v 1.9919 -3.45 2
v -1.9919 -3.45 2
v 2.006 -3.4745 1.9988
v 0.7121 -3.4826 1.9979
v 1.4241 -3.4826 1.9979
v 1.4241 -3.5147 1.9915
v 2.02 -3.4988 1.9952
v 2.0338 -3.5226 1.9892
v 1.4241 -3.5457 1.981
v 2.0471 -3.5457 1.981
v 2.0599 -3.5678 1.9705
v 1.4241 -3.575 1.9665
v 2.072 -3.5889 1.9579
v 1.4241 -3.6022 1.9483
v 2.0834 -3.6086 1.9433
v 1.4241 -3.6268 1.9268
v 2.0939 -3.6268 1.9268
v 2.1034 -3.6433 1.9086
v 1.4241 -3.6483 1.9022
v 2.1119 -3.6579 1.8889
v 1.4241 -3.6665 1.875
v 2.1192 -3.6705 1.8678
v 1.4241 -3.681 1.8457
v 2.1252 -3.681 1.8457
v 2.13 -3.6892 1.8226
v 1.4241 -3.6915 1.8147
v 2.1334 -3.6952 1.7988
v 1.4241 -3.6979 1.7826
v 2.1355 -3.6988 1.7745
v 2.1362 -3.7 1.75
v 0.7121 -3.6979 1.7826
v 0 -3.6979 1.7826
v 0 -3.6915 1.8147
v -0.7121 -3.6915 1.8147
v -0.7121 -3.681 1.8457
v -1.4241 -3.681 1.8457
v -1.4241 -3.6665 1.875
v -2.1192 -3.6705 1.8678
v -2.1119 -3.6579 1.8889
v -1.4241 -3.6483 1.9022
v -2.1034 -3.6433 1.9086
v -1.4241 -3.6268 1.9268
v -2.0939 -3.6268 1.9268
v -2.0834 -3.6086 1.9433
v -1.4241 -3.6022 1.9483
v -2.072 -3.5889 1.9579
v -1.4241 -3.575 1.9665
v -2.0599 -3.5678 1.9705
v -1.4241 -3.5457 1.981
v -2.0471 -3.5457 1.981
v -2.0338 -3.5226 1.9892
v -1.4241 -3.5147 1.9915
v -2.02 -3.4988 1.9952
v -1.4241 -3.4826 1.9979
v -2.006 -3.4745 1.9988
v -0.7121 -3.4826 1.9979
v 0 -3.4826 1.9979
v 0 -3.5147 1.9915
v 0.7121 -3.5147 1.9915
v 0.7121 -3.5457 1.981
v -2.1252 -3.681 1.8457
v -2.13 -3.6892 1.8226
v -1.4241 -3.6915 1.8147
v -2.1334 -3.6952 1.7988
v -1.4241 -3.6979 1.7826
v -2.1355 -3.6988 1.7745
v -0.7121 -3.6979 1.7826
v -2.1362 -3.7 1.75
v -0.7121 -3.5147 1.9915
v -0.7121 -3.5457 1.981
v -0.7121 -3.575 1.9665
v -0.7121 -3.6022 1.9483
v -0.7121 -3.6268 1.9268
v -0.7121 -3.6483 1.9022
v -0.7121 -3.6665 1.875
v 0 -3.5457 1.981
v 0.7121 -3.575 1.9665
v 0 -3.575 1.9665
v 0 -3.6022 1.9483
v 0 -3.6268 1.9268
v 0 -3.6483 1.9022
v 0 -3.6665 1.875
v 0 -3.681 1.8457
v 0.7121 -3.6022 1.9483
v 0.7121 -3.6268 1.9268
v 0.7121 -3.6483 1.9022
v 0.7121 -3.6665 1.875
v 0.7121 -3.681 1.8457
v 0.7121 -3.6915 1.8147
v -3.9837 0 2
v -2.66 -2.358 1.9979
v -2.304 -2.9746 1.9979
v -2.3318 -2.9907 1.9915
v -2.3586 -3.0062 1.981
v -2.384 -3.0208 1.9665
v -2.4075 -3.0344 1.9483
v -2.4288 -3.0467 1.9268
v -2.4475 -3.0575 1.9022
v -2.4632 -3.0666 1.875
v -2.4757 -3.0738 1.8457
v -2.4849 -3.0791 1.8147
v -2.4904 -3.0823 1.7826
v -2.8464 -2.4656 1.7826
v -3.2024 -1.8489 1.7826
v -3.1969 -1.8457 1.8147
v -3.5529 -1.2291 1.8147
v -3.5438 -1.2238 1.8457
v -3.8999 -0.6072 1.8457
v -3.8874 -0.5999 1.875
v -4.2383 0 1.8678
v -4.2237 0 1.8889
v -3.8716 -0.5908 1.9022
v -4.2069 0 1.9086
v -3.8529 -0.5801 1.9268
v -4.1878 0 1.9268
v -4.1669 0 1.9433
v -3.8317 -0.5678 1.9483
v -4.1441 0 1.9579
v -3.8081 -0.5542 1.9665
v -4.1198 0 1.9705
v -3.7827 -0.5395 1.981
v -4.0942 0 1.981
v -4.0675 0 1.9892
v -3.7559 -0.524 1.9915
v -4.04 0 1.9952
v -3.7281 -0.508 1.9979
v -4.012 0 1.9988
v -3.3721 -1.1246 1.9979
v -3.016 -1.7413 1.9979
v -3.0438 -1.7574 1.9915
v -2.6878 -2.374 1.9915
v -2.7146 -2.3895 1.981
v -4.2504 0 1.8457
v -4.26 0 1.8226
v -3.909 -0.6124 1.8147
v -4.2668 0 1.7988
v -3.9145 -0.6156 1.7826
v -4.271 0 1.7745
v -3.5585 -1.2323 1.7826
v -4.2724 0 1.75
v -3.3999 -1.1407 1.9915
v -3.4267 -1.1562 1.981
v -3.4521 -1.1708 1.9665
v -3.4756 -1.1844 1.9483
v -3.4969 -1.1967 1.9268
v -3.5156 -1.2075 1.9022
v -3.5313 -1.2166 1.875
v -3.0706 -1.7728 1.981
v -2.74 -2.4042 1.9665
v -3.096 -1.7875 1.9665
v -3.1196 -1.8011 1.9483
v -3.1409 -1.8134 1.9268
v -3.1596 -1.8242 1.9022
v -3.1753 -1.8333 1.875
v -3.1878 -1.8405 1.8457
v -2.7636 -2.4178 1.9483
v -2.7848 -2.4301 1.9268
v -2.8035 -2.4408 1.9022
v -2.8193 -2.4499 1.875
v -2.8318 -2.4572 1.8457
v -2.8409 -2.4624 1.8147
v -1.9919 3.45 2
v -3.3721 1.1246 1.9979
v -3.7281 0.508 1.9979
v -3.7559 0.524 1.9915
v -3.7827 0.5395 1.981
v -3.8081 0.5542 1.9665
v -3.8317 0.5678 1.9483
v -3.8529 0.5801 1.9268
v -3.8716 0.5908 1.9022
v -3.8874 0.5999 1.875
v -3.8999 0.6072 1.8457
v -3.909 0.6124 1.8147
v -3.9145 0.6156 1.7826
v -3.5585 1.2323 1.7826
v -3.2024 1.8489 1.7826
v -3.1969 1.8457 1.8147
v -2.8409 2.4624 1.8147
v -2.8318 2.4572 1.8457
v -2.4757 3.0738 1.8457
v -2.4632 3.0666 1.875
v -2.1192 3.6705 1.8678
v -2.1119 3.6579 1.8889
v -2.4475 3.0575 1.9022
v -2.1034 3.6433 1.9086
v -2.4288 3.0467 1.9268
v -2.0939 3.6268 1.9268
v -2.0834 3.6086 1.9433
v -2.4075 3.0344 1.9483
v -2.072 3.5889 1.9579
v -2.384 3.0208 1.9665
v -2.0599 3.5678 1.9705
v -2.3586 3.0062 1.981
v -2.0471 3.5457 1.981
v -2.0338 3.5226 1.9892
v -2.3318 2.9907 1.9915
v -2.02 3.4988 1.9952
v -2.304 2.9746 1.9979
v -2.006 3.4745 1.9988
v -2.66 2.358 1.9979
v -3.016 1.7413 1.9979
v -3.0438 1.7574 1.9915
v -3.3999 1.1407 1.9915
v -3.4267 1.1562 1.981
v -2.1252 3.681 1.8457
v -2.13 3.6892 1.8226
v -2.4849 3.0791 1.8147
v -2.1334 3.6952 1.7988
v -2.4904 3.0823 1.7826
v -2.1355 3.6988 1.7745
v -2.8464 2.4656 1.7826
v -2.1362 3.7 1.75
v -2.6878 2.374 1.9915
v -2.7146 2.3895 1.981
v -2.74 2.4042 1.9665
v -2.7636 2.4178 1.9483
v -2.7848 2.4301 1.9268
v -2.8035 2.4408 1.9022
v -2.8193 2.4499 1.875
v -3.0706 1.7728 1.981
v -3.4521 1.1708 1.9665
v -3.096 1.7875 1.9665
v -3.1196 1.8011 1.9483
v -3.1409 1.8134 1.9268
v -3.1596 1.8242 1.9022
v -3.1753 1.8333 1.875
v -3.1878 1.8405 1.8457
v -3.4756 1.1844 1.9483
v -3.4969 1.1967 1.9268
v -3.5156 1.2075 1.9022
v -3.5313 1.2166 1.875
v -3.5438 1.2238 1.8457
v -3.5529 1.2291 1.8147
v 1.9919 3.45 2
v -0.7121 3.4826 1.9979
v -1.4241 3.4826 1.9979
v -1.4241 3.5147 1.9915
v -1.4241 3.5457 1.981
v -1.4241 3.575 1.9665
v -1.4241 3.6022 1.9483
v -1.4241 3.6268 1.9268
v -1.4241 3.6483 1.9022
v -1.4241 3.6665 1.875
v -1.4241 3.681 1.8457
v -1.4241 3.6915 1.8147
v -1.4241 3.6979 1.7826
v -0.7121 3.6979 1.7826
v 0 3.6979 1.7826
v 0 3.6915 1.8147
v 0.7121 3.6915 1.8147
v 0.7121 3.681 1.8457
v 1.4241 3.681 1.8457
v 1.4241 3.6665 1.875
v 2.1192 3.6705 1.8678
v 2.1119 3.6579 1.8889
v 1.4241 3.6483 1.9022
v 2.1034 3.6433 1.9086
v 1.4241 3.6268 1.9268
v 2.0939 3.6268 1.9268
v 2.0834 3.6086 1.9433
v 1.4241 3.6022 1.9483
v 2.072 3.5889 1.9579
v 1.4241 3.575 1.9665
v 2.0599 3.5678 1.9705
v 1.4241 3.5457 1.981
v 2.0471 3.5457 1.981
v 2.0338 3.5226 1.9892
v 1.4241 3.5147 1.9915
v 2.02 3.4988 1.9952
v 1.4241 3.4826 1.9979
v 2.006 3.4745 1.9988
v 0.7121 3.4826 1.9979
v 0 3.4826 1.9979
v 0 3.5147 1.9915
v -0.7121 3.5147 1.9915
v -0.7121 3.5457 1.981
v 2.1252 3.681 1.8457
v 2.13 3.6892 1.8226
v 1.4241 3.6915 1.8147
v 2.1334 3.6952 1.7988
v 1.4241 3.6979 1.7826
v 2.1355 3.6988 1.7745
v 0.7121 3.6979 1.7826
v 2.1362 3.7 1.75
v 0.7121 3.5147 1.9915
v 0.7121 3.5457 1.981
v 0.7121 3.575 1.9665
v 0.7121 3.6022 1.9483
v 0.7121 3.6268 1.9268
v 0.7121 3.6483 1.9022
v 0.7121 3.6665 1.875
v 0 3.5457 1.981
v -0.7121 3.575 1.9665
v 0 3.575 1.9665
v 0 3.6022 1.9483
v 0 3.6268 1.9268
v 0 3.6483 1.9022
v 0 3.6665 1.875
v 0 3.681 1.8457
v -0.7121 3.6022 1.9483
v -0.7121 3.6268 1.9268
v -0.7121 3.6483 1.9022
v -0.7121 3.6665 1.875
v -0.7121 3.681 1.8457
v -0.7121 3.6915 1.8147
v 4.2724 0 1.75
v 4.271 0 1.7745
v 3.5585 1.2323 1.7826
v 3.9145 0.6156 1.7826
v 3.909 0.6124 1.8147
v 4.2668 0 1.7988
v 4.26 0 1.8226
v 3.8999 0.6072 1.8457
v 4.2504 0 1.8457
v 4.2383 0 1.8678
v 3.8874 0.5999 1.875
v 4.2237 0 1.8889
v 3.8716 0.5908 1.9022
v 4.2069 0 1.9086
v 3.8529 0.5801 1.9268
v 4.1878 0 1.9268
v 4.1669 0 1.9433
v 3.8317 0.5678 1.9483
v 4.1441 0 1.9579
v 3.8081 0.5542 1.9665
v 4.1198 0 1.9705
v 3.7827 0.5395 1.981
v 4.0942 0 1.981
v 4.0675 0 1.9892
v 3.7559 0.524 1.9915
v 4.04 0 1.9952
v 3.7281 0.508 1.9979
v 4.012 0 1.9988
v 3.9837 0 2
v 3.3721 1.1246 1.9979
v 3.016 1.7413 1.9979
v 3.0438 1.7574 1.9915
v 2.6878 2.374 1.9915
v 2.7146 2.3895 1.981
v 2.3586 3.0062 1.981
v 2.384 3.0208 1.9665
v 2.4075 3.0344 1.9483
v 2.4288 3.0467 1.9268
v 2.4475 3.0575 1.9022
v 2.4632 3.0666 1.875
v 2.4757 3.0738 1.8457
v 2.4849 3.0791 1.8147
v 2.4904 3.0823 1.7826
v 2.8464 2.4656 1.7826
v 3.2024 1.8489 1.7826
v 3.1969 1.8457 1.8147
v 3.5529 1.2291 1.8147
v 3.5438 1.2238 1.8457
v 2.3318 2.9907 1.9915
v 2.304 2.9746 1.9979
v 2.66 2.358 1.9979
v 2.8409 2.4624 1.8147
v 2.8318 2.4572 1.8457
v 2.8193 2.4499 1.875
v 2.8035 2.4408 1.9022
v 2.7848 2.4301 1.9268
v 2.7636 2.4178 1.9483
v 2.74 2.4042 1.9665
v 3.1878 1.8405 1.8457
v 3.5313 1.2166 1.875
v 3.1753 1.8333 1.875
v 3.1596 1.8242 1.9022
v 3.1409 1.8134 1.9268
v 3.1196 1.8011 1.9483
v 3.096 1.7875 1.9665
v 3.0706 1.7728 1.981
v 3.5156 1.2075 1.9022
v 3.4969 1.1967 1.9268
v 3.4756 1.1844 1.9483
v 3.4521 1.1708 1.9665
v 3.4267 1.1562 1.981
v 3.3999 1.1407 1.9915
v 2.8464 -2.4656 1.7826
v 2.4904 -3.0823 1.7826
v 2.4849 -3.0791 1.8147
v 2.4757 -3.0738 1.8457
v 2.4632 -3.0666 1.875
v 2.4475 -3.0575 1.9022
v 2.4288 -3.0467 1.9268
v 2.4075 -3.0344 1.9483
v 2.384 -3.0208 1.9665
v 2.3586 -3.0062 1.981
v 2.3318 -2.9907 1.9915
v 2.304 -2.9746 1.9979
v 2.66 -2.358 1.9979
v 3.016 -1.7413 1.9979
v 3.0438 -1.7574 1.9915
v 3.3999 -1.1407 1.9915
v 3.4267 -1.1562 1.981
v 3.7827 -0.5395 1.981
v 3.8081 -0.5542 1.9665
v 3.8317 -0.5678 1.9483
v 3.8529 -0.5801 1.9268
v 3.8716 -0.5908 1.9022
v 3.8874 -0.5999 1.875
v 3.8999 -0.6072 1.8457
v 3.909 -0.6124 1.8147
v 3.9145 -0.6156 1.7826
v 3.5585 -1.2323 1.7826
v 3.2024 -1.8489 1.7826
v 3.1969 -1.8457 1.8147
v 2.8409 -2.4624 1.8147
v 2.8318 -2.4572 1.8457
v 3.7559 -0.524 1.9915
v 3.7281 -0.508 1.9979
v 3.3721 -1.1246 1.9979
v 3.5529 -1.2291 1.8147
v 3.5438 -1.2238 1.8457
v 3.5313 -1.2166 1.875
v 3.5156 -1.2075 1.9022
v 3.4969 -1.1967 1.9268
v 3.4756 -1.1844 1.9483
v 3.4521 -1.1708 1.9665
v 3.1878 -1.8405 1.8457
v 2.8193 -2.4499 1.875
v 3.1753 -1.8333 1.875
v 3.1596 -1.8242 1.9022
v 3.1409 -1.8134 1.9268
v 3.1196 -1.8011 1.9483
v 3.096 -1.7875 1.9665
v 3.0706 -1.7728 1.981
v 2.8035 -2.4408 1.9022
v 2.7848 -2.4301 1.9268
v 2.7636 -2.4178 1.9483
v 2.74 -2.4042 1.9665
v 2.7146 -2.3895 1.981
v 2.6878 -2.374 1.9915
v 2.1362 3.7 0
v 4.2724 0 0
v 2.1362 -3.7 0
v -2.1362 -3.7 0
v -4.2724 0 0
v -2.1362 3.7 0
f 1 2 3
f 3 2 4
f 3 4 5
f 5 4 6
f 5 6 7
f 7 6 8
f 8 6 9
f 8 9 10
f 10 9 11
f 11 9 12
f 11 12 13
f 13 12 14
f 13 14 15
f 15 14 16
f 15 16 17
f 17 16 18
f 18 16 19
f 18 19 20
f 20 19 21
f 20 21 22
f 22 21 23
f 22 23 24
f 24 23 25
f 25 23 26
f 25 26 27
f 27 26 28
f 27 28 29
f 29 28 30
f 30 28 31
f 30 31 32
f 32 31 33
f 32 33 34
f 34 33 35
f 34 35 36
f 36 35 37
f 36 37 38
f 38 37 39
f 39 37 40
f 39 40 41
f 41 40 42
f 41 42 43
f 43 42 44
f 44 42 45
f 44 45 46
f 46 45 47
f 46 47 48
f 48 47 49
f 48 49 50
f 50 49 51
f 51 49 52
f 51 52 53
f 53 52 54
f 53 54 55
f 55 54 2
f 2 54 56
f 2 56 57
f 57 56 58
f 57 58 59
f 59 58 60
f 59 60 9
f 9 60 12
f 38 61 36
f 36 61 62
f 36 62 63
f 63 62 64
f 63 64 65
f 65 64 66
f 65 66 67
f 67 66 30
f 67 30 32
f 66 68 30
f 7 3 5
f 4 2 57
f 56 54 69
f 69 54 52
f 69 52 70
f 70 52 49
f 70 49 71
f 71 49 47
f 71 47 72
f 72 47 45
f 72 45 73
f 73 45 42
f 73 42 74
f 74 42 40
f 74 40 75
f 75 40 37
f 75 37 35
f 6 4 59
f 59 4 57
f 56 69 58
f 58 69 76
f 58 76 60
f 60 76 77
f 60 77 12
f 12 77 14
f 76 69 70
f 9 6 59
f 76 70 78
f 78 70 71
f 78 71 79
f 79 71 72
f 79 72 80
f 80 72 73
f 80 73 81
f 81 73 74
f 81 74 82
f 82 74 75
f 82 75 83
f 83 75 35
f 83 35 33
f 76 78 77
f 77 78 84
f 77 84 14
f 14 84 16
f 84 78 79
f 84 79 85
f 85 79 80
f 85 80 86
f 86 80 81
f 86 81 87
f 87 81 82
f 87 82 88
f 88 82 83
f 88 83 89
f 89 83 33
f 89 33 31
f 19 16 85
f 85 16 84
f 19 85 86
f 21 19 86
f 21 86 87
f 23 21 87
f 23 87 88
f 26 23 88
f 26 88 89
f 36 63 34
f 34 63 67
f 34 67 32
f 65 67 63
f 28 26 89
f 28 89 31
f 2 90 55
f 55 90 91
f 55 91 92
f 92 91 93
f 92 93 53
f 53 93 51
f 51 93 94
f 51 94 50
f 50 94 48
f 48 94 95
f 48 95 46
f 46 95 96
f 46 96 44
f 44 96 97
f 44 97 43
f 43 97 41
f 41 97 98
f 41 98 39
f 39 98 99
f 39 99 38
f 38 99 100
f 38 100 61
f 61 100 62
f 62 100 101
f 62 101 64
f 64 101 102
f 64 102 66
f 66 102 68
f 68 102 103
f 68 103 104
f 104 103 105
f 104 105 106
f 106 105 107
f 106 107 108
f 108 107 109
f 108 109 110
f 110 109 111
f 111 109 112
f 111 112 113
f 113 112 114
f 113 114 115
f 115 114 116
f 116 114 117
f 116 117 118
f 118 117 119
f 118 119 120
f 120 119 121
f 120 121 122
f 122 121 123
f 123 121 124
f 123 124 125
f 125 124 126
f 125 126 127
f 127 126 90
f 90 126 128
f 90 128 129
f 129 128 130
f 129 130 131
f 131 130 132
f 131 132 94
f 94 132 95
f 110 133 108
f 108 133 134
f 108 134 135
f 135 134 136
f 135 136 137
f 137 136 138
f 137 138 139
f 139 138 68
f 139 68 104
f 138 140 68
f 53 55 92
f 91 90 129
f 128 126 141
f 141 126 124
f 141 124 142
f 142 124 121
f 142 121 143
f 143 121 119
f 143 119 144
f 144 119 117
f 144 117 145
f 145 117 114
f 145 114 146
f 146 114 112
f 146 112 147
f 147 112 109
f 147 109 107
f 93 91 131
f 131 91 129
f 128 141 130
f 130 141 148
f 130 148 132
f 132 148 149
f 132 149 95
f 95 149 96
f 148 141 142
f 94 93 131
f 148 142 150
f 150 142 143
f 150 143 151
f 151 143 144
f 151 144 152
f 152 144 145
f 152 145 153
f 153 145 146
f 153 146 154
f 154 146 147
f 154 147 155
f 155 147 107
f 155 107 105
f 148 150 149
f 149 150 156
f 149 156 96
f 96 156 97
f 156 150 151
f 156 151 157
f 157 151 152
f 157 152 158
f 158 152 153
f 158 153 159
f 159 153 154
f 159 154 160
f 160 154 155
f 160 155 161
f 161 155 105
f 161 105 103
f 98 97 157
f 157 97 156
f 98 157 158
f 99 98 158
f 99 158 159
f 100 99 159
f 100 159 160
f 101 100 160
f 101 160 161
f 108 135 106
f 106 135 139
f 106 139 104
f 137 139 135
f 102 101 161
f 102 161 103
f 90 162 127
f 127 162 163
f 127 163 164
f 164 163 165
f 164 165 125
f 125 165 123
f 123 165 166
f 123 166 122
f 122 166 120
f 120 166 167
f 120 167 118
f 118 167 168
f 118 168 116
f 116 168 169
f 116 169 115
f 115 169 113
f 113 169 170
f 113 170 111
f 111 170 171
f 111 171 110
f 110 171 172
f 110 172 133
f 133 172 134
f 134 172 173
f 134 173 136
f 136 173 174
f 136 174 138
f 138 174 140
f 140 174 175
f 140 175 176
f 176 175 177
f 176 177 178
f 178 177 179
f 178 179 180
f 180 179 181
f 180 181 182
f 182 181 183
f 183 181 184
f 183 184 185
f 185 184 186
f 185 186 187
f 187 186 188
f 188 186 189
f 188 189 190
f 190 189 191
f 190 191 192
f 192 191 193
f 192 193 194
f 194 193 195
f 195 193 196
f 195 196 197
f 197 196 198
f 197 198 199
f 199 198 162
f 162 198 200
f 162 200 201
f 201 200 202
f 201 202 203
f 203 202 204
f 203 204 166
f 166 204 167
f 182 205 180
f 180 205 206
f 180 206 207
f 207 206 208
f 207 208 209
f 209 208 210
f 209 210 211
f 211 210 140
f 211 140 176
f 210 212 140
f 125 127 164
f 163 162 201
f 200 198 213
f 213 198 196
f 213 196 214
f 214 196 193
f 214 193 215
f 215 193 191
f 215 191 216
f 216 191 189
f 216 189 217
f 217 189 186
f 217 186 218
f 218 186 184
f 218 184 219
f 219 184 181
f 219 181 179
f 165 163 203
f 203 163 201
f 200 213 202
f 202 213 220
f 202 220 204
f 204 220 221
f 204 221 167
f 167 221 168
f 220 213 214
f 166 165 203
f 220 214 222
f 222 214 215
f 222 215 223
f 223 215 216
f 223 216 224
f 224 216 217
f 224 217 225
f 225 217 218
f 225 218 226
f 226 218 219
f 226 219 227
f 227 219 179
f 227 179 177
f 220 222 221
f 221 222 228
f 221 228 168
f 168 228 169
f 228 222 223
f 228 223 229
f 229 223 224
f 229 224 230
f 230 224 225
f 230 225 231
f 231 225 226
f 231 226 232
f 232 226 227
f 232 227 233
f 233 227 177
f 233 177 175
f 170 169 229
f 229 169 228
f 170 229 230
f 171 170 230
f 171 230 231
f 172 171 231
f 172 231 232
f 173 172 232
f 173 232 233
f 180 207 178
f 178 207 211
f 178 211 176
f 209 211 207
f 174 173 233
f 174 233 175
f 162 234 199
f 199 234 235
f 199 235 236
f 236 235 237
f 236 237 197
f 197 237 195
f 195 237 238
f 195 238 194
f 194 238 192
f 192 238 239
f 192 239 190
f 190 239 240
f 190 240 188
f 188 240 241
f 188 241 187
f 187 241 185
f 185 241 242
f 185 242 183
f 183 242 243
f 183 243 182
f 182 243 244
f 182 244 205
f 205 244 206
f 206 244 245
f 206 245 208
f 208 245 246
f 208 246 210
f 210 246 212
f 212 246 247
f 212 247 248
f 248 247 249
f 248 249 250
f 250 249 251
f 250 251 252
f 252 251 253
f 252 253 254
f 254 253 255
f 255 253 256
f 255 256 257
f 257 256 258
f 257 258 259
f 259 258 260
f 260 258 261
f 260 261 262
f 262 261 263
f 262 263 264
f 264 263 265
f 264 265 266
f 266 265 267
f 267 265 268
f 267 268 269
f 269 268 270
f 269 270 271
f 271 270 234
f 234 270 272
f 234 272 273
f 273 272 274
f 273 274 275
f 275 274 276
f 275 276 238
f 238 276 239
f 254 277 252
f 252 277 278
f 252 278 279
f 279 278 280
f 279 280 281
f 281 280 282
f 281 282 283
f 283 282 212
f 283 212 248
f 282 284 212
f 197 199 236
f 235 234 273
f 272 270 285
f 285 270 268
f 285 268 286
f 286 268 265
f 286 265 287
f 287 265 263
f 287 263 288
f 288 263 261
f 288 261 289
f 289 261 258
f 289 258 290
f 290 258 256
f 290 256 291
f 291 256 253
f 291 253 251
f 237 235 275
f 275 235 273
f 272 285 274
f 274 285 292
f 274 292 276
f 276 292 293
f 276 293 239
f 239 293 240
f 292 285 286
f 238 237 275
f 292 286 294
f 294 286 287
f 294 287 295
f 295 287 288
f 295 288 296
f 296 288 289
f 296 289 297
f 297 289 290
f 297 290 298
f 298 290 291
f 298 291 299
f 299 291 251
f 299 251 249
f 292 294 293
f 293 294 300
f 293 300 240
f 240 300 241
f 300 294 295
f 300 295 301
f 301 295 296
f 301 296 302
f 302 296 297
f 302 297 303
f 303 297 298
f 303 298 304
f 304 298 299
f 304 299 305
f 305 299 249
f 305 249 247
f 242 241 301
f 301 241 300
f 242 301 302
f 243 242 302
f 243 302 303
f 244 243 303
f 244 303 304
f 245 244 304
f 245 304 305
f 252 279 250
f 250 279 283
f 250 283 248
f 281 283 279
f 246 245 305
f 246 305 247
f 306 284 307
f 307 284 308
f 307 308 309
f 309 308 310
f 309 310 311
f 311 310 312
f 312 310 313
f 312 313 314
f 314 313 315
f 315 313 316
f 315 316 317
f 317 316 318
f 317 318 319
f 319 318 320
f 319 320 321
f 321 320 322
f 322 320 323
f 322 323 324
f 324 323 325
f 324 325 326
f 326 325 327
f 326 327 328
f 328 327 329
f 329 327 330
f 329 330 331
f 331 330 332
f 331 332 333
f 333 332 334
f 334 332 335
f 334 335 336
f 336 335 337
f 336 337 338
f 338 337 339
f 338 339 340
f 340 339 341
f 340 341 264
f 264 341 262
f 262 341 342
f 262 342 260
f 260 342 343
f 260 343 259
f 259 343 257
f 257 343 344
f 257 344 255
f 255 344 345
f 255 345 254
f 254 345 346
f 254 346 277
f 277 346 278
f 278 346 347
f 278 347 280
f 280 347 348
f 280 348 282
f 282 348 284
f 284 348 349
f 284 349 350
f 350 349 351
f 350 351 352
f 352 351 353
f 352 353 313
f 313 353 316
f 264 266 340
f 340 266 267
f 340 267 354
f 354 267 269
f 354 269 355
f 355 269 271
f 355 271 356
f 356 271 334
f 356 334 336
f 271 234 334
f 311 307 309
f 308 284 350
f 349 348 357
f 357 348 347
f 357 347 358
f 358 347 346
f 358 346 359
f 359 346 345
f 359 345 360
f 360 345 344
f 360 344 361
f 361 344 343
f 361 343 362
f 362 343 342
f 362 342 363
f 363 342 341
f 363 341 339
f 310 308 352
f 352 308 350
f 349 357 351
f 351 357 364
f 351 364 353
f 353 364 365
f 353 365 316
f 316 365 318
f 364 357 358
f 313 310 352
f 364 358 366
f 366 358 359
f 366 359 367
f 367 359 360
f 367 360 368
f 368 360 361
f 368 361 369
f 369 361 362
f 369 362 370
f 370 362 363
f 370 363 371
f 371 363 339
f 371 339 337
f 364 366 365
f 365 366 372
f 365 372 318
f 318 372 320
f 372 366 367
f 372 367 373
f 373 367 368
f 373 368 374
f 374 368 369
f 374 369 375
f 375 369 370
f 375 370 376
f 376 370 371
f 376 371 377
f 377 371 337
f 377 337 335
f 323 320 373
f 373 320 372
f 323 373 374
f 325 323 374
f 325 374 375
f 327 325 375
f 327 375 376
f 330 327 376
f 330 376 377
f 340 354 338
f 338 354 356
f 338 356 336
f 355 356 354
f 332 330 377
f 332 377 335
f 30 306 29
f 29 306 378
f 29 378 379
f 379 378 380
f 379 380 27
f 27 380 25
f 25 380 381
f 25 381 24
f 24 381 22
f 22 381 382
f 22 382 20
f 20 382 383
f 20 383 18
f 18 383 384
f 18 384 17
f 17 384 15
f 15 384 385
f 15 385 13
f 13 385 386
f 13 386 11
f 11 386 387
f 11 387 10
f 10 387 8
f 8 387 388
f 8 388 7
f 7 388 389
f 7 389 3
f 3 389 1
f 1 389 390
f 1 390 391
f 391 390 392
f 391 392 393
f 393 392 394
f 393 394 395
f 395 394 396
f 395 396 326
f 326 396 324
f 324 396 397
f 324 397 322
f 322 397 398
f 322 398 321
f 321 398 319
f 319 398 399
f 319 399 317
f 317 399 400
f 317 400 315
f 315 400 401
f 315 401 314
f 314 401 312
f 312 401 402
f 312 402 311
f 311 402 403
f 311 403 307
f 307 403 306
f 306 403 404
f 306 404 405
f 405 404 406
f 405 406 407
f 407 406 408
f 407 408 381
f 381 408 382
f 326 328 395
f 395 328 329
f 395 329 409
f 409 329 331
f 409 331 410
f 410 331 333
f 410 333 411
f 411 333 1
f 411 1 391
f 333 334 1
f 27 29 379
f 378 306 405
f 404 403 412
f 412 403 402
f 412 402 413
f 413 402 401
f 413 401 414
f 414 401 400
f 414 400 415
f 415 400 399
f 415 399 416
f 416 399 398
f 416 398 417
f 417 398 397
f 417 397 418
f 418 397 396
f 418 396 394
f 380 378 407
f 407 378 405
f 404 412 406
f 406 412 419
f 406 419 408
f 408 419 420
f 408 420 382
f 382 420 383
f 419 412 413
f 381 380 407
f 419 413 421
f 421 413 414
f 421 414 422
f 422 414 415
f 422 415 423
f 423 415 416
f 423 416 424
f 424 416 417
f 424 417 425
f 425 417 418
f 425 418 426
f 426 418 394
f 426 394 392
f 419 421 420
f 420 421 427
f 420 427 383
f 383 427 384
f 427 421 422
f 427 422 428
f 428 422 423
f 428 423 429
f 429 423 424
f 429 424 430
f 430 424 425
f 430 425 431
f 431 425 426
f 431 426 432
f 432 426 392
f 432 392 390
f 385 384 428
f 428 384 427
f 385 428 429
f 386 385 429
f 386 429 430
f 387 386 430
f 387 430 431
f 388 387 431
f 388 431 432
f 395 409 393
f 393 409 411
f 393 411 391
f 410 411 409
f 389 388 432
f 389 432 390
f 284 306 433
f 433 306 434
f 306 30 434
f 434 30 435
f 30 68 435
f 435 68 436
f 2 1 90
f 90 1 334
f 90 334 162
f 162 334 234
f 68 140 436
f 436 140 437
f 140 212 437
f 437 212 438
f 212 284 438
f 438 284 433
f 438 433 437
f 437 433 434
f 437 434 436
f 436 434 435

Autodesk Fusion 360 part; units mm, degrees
sketch "Skizze1" plane through (0, 0, 0) normal (0, 0, 1) x (1, 0, 0)
  line L0 (-2.1362, 3.7) -> (-4.2724, 0)
  line L1 (-4.2724, 0) -> (-2.1362, -3.7)
  line L2 (-2.1362, -3.7) -> (2.1362, -3.7)
  line L3 (2.1362, -3.7) -> (4.2724, 0)
  line L4 (4.2724, 0) -> (2.1362, 3.7)
  line L5 (2.1362, 3.7) -> (-2.1362, 3.7)
  dimension "d1" = 7.4
extrude "Extrusion1" add sketch "Skizze1" along normal blind 2
fillet "Abrundung1" radius 0.25 1 faces at (-0.7121, -1.2333, 2)
